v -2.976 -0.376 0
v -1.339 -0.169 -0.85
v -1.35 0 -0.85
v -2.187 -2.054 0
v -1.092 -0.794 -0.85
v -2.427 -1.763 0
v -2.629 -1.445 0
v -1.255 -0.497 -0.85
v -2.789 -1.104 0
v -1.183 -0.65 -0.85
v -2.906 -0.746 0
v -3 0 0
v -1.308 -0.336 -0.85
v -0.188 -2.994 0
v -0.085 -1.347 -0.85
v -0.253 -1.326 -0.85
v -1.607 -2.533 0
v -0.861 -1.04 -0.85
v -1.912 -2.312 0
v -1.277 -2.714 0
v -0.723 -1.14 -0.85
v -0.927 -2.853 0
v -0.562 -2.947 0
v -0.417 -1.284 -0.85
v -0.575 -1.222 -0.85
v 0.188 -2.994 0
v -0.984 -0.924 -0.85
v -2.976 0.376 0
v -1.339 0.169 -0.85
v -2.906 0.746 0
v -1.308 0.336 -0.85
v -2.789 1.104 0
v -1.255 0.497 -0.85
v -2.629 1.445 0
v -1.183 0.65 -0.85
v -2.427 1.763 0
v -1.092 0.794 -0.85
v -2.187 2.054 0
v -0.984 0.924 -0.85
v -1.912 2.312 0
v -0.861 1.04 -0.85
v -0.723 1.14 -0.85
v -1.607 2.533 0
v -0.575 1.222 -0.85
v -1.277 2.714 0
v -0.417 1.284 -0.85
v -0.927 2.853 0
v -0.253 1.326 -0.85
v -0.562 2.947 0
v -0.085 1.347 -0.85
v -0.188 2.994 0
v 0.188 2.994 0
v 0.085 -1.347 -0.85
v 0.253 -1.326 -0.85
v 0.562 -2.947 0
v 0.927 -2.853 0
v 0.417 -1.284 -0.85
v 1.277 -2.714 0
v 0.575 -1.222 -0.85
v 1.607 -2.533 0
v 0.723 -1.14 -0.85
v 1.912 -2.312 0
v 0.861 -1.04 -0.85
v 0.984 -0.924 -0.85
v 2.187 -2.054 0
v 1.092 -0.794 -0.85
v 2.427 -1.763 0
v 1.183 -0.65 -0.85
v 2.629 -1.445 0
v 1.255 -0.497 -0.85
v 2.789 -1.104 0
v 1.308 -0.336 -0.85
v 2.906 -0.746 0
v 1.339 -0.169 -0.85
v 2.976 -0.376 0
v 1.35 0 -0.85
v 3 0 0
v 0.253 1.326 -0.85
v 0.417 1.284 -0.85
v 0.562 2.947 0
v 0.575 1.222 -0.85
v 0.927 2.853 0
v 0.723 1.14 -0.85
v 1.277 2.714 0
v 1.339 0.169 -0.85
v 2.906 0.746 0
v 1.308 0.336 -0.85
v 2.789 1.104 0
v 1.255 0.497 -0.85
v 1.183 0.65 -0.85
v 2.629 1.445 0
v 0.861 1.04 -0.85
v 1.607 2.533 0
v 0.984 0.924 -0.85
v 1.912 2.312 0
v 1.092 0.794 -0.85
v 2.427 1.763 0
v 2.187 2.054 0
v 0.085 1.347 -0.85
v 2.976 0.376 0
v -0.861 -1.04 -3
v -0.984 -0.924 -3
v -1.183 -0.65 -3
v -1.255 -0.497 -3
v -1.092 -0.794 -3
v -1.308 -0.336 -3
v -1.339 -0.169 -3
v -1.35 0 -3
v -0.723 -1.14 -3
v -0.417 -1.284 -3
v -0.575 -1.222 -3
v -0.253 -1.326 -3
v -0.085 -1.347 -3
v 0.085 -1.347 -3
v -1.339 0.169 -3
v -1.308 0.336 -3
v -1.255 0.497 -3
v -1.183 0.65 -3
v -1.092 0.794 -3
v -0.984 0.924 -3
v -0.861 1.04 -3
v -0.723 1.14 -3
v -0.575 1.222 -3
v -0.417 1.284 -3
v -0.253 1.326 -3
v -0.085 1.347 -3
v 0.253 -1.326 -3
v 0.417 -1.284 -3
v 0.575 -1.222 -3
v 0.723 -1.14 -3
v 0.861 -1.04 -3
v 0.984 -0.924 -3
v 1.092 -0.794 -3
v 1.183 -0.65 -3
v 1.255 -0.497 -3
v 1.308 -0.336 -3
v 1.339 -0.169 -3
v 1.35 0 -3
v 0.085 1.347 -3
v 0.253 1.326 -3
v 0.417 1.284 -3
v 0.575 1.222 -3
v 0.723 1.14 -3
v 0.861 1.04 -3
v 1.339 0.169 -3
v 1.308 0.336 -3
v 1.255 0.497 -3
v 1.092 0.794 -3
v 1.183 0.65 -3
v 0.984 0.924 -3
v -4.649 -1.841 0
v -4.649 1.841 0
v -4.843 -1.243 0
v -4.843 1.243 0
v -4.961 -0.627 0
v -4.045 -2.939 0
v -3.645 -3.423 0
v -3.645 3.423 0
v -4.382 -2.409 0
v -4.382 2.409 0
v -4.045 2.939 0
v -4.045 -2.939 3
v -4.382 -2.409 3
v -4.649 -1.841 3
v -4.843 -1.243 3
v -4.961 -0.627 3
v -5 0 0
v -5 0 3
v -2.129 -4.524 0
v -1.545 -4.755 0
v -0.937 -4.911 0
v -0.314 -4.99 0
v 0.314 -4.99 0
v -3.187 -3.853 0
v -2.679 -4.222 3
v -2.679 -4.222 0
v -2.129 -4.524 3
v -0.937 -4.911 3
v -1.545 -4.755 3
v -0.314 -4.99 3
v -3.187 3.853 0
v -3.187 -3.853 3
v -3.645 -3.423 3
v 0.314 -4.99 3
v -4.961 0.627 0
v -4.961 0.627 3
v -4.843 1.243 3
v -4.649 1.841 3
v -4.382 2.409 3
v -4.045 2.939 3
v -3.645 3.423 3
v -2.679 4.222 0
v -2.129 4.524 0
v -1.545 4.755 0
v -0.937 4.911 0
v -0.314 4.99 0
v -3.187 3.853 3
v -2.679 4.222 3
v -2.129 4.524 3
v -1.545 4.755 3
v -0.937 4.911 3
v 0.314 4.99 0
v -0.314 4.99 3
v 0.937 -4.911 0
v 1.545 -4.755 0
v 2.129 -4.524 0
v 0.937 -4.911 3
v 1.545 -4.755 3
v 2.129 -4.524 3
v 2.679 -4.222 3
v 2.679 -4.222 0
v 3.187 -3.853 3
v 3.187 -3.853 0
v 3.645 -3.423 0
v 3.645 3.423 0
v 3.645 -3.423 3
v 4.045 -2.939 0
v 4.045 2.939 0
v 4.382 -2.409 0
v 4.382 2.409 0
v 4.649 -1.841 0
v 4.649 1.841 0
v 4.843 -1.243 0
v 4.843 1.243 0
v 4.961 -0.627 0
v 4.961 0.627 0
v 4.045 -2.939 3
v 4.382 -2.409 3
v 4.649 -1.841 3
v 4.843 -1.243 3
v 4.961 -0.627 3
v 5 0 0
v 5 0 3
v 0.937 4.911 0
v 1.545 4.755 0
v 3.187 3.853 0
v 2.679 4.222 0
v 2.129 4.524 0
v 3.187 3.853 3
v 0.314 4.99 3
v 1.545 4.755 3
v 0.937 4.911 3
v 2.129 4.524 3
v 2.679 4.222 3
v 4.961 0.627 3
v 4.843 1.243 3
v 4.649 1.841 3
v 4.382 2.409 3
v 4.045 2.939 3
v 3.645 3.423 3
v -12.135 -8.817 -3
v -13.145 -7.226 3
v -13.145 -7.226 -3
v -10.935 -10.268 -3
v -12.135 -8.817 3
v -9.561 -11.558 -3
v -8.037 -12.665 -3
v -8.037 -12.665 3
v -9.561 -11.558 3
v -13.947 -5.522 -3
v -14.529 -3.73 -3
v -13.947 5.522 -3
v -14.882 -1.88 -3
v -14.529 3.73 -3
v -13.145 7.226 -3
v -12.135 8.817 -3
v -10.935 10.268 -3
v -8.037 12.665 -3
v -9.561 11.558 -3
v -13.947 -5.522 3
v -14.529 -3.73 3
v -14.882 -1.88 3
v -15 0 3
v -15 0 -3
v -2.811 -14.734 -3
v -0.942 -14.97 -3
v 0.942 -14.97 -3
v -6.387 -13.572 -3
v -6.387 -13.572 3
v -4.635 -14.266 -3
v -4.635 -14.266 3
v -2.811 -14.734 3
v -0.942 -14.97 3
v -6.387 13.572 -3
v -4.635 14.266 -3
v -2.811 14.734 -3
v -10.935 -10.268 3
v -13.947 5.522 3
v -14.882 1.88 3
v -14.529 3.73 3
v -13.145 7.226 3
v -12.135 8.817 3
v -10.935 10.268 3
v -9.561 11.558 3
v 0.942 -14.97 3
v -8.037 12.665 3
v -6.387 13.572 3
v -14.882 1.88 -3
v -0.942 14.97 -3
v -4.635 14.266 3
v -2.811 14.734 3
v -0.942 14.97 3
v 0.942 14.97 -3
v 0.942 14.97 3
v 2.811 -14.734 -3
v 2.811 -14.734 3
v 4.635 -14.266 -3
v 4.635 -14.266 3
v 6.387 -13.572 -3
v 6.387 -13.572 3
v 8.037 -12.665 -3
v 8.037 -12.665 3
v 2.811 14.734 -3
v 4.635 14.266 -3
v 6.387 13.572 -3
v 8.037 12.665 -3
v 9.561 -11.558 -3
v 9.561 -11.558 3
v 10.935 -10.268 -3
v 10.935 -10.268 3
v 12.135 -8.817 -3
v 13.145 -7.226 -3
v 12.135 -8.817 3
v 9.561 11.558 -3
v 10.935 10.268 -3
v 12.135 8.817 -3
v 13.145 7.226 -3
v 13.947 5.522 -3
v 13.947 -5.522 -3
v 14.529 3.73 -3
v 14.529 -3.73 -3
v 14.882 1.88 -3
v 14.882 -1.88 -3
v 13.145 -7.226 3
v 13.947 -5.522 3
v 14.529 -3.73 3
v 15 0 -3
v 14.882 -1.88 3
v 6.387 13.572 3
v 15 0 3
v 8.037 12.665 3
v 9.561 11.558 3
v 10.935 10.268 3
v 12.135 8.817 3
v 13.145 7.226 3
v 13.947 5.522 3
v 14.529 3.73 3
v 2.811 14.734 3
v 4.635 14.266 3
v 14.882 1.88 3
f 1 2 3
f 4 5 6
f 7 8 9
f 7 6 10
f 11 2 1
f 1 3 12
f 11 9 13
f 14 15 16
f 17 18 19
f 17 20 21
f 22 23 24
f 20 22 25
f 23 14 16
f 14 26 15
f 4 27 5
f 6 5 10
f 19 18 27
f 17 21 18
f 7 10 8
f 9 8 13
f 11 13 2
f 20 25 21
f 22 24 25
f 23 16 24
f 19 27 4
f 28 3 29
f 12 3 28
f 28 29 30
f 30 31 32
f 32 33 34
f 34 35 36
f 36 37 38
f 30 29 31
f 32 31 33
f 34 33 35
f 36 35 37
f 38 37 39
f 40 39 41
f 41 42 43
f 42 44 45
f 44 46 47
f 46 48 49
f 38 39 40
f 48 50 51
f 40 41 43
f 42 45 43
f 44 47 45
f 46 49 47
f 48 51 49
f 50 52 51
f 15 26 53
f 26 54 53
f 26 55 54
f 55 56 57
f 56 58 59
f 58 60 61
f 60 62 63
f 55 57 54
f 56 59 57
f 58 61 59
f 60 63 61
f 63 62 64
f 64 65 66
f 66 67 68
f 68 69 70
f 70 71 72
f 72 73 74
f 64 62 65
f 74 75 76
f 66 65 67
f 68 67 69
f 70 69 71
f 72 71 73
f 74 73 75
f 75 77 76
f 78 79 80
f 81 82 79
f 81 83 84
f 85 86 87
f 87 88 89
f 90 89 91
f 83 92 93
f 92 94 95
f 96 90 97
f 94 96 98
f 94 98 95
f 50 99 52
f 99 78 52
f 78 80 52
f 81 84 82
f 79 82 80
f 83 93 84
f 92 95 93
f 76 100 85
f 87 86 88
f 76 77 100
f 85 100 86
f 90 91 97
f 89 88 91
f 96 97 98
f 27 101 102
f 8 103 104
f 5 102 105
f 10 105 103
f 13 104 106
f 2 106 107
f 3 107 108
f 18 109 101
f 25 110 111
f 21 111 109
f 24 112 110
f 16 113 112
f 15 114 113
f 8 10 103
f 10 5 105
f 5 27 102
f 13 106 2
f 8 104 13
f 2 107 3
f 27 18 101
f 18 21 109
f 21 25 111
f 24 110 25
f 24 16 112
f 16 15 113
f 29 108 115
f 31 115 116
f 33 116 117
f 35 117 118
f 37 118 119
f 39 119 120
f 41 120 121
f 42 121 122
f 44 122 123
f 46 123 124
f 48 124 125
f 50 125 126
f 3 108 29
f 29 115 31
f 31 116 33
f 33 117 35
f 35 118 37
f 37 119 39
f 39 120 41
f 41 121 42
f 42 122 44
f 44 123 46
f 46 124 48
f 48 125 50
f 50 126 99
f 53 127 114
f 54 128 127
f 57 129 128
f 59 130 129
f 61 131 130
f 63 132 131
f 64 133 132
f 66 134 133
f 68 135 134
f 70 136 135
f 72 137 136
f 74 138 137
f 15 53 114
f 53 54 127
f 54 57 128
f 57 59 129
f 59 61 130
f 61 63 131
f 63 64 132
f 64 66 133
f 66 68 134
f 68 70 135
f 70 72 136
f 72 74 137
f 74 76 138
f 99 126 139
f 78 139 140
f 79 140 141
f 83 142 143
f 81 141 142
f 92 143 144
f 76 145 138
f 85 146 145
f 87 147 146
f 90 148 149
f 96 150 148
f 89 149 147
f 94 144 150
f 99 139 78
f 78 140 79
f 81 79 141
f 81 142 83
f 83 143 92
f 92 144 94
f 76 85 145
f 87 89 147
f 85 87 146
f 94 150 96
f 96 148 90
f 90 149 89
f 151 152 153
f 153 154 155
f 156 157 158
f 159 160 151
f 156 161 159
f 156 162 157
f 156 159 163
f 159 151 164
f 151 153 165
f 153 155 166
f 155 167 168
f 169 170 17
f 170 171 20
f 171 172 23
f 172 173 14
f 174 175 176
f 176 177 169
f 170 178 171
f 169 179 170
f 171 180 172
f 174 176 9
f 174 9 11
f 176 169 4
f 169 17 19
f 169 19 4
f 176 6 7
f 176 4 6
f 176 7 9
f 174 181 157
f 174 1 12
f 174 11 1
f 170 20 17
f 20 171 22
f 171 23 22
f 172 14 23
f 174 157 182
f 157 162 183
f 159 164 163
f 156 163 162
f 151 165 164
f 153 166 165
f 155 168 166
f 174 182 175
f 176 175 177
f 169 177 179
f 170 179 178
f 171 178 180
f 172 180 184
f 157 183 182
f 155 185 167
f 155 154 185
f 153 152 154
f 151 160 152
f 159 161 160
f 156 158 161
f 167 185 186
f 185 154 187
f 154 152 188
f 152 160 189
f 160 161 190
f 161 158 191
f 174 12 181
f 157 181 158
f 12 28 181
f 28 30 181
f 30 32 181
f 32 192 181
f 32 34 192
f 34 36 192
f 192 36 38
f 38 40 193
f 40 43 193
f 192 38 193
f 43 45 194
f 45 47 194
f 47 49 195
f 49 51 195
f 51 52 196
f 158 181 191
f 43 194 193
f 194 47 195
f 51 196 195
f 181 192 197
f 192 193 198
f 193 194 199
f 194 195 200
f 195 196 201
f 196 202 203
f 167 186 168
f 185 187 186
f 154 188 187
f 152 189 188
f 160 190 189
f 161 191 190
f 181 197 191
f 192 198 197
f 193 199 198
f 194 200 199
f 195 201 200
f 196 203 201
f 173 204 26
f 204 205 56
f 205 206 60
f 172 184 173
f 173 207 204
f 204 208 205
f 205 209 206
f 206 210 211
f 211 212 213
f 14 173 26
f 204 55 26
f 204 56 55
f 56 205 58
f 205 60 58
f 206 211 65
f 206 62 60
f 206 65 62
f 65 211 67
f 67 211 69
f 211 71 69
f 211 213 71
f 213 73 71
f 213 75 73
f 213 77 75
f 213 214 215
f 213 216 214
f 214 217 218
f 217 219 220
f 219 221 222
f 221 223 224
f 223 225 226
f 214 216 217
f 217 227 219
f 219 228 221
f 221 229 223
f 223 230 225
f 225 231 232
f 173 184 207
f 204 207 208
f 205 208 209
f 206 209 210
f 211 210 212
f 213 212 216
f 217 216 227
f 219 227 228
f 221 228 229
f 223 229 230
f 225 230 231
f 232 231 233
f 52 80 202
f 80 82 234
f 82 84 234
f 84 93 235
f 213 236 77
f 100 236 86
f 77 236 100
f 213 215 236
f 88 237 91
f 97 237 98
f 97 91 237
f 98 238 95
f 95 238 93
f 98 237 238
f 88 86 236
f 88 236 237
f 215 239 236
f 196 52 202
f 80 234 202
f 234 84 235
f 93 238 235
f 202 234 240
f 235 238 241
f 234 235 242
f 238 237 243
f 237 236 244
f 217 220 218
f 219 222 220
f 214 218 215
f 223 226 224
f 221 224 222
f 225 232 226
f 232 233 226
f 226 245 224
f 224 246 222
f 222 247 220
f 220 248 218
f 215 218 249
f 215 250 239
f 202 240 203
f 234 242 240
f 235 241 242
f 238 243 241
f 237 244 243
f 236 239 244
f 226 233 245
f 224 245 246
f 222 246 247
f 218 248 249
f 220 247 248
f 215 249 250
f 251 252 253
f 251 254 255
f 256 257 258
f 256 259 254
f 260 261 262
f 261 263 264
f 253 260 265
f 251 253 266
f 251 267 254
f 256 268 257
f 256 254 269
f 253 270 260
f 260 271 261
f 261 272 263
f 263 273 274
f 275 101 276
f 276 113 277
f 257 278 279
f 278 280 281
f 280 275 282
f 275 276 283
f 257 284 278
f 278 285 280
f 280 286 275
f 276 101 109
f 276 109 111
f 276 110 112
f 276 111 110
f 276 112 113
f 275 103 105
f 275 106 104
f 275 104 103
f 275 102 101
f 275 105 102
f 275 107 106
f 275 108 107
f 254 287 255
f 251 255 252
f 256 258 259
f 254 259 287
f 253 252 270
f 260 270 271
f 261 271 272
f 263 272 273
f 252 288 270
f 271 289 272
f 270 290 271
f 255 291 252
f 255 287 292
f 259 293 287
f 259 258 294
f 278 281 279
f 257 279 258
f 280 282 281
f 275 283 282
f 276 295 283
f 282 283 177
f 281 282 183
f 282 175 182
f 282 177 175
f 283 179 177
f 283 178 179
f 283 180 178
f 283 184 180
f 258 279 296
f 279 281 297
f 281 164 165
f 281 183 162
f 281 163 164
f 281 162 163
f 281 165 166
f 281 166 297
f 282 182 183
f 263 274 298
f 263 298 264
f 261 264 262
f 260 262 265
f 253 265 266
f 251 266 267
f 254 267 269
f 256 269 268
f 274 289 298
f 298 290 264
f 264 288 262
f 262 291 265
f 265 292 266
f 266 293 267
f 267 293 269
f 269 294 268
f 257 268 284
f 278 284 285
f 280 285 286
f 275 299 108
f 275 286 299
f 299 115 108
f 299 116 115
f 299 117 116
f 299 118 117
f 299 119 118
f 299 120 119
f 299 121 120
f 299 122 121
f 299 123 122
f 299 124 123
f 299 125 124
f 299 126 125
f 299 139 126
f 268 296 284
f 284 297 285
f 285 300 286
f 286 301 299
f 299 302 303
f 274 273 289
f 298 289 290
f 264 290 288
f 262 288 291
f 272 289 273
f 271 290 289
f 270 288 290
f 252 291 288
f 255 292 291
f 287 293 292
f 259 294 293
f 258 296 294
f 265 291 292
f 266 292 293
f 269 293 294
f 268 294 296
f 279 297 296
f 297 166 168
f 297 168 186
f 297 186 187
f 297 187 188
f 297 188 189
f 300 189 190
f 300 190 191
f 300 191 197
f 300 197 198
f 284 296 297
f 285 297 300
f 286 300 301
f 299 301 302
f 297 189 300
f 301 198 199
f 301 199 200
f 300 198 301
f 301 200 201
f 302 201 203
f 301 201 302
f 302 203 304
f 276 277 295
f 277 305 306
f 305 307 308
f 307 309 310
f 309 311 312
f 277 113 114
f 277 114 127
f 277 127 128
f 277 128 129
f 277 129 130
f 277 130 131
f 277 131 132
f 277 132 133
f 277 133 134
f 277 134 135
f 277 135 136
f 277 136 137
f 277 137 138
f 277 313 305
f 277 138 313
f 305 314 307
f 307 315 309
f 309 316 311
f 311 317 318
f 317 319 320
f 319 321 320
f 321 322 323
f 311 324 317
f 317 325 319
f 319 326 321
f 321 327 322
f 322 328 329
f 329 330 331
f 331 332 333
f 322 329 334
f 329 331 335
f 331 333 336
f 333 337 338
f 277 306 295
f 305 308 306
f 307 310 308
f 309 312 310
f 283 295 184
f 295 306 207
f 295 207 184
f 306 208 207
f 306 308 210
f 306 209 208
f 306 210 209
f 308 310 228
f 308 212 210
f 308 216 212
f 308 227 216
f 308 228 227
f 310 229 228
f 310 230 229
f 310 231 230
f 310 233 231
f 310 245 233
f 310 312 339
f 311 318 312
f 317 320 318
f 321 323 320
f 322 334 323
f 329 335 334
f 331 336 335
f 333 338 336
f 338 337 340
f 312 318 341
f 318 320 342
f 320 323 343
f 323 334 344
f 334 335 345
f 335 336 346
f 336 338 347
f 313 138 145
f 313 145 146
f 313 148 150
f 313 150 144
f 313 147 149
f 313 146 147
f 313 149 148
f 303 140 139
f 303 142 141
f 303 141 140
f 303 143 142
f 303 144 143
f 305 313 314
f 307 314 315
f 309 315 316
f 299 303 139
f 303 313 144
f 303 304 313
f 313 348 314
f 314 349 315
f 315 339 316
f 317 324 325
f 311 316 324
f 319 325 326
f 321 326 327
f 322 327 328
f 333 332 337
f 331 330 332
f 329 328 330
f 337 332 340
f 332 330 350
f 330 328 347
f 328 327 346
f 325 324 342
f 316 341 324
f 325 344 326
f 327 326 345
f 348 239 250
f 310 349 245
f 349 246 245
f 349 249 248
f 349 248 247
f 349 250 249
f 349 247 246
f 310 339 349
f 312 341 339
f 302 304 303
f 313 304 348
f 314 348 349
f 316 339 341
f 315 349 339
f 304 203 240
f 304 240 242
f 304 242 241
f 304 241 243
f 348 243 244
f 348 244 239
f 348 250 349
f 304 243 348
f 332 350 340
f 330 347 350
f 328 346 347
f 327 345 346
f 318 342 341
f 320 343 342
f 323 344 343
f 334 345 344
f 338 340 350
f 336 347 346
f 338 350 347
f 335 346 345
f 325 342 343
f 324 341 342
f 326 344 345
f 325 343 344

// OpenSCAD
$fn = 50;


difference() {
	union() {
		translate(v = [0, 0, -3.0000000000]) {
			cylinder(h = 6, r = 15.0000000000);
		}
	}
	union() {
		translate(v = [0, 0, 0]) {
			rotate(a = [0, 0, 0]) {
				difference() {
					union() {
						translate(v = [0, 0, -6.0000000000]) {
							cylinder(h = 6, r = 1.0000000000);
						}
						translate(v = [0, 0, -0.8500000000]) {
							cylinder(h = 0.8500000000, r1 = 1.3500000000, r2 = 3.0000000000);
						}
						translate(v = [0, 0, -6.0000000000]) {
							cylinder(h = 6, r = 1.3500000000);
						}
						translate(v = [0, 0, -6.0000000000]) {
							cylinder(h = 6, r = 1.0000000000);
						}
					}
					union();
				}
			}
		}
		#cylinder(h = 3, r = 5.0000000000);
	}
}
